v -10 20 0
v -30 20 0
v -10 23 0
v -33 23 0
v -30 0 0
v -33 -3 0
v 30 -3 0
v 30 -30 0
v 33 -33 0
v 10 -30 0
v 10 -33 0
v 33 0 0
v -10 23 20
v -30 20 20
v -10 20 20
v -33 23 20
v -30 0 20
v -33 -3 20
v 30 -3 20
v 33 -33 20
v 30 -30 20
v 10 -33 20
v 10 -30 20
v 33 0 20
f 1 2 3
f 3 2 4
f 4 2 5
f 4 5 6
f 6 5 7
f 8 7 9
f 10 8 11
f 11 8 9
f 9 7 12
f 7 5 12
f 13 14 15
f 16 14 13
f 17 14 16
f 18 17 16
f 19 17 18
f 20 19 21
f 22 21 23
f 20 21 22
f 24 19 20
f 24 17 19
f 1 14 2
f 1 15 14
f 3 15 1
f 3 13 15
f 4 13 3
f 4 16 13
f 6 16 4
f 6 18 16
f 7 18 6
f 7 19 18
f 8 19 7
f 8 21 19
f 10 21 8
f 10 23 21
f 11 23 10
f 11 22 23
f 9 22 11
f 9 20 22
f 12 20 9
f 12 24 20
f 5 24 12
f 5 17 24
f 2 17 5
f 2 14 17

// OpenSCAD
unit = 20;
extend = 10;
thickness = 3;

linear_extrude(height = unit, center = false, convexity = 10, twist = 0)
{
    translate([0, 0, 0])
    {
        polygon(points = [
            [-(unit+extend), 0],
            [-(unit+extend), unit],
            [-extend, unit],
            [-extend, unit+thickness],
            [-(unit+extend)-thickness, unit+thickness],
            [-(unit+extend)-thickness, 0],
            [ (unit+extend)+thickness, 0],
            [ (unit+extend)+thickness, -(unit+extend)-thickness],
            [ extend, -(unit+extend)-thickness],
            [ extend, -(unit+extend)],
            [ (unit+extend), -(unit+extend)],
            [ (unit+extend), -thickness],
            [ -(unit+extend)-thickness, -thickness],
            [ -(unit+extend)-thickness, 0]
        ]);
    }
}
